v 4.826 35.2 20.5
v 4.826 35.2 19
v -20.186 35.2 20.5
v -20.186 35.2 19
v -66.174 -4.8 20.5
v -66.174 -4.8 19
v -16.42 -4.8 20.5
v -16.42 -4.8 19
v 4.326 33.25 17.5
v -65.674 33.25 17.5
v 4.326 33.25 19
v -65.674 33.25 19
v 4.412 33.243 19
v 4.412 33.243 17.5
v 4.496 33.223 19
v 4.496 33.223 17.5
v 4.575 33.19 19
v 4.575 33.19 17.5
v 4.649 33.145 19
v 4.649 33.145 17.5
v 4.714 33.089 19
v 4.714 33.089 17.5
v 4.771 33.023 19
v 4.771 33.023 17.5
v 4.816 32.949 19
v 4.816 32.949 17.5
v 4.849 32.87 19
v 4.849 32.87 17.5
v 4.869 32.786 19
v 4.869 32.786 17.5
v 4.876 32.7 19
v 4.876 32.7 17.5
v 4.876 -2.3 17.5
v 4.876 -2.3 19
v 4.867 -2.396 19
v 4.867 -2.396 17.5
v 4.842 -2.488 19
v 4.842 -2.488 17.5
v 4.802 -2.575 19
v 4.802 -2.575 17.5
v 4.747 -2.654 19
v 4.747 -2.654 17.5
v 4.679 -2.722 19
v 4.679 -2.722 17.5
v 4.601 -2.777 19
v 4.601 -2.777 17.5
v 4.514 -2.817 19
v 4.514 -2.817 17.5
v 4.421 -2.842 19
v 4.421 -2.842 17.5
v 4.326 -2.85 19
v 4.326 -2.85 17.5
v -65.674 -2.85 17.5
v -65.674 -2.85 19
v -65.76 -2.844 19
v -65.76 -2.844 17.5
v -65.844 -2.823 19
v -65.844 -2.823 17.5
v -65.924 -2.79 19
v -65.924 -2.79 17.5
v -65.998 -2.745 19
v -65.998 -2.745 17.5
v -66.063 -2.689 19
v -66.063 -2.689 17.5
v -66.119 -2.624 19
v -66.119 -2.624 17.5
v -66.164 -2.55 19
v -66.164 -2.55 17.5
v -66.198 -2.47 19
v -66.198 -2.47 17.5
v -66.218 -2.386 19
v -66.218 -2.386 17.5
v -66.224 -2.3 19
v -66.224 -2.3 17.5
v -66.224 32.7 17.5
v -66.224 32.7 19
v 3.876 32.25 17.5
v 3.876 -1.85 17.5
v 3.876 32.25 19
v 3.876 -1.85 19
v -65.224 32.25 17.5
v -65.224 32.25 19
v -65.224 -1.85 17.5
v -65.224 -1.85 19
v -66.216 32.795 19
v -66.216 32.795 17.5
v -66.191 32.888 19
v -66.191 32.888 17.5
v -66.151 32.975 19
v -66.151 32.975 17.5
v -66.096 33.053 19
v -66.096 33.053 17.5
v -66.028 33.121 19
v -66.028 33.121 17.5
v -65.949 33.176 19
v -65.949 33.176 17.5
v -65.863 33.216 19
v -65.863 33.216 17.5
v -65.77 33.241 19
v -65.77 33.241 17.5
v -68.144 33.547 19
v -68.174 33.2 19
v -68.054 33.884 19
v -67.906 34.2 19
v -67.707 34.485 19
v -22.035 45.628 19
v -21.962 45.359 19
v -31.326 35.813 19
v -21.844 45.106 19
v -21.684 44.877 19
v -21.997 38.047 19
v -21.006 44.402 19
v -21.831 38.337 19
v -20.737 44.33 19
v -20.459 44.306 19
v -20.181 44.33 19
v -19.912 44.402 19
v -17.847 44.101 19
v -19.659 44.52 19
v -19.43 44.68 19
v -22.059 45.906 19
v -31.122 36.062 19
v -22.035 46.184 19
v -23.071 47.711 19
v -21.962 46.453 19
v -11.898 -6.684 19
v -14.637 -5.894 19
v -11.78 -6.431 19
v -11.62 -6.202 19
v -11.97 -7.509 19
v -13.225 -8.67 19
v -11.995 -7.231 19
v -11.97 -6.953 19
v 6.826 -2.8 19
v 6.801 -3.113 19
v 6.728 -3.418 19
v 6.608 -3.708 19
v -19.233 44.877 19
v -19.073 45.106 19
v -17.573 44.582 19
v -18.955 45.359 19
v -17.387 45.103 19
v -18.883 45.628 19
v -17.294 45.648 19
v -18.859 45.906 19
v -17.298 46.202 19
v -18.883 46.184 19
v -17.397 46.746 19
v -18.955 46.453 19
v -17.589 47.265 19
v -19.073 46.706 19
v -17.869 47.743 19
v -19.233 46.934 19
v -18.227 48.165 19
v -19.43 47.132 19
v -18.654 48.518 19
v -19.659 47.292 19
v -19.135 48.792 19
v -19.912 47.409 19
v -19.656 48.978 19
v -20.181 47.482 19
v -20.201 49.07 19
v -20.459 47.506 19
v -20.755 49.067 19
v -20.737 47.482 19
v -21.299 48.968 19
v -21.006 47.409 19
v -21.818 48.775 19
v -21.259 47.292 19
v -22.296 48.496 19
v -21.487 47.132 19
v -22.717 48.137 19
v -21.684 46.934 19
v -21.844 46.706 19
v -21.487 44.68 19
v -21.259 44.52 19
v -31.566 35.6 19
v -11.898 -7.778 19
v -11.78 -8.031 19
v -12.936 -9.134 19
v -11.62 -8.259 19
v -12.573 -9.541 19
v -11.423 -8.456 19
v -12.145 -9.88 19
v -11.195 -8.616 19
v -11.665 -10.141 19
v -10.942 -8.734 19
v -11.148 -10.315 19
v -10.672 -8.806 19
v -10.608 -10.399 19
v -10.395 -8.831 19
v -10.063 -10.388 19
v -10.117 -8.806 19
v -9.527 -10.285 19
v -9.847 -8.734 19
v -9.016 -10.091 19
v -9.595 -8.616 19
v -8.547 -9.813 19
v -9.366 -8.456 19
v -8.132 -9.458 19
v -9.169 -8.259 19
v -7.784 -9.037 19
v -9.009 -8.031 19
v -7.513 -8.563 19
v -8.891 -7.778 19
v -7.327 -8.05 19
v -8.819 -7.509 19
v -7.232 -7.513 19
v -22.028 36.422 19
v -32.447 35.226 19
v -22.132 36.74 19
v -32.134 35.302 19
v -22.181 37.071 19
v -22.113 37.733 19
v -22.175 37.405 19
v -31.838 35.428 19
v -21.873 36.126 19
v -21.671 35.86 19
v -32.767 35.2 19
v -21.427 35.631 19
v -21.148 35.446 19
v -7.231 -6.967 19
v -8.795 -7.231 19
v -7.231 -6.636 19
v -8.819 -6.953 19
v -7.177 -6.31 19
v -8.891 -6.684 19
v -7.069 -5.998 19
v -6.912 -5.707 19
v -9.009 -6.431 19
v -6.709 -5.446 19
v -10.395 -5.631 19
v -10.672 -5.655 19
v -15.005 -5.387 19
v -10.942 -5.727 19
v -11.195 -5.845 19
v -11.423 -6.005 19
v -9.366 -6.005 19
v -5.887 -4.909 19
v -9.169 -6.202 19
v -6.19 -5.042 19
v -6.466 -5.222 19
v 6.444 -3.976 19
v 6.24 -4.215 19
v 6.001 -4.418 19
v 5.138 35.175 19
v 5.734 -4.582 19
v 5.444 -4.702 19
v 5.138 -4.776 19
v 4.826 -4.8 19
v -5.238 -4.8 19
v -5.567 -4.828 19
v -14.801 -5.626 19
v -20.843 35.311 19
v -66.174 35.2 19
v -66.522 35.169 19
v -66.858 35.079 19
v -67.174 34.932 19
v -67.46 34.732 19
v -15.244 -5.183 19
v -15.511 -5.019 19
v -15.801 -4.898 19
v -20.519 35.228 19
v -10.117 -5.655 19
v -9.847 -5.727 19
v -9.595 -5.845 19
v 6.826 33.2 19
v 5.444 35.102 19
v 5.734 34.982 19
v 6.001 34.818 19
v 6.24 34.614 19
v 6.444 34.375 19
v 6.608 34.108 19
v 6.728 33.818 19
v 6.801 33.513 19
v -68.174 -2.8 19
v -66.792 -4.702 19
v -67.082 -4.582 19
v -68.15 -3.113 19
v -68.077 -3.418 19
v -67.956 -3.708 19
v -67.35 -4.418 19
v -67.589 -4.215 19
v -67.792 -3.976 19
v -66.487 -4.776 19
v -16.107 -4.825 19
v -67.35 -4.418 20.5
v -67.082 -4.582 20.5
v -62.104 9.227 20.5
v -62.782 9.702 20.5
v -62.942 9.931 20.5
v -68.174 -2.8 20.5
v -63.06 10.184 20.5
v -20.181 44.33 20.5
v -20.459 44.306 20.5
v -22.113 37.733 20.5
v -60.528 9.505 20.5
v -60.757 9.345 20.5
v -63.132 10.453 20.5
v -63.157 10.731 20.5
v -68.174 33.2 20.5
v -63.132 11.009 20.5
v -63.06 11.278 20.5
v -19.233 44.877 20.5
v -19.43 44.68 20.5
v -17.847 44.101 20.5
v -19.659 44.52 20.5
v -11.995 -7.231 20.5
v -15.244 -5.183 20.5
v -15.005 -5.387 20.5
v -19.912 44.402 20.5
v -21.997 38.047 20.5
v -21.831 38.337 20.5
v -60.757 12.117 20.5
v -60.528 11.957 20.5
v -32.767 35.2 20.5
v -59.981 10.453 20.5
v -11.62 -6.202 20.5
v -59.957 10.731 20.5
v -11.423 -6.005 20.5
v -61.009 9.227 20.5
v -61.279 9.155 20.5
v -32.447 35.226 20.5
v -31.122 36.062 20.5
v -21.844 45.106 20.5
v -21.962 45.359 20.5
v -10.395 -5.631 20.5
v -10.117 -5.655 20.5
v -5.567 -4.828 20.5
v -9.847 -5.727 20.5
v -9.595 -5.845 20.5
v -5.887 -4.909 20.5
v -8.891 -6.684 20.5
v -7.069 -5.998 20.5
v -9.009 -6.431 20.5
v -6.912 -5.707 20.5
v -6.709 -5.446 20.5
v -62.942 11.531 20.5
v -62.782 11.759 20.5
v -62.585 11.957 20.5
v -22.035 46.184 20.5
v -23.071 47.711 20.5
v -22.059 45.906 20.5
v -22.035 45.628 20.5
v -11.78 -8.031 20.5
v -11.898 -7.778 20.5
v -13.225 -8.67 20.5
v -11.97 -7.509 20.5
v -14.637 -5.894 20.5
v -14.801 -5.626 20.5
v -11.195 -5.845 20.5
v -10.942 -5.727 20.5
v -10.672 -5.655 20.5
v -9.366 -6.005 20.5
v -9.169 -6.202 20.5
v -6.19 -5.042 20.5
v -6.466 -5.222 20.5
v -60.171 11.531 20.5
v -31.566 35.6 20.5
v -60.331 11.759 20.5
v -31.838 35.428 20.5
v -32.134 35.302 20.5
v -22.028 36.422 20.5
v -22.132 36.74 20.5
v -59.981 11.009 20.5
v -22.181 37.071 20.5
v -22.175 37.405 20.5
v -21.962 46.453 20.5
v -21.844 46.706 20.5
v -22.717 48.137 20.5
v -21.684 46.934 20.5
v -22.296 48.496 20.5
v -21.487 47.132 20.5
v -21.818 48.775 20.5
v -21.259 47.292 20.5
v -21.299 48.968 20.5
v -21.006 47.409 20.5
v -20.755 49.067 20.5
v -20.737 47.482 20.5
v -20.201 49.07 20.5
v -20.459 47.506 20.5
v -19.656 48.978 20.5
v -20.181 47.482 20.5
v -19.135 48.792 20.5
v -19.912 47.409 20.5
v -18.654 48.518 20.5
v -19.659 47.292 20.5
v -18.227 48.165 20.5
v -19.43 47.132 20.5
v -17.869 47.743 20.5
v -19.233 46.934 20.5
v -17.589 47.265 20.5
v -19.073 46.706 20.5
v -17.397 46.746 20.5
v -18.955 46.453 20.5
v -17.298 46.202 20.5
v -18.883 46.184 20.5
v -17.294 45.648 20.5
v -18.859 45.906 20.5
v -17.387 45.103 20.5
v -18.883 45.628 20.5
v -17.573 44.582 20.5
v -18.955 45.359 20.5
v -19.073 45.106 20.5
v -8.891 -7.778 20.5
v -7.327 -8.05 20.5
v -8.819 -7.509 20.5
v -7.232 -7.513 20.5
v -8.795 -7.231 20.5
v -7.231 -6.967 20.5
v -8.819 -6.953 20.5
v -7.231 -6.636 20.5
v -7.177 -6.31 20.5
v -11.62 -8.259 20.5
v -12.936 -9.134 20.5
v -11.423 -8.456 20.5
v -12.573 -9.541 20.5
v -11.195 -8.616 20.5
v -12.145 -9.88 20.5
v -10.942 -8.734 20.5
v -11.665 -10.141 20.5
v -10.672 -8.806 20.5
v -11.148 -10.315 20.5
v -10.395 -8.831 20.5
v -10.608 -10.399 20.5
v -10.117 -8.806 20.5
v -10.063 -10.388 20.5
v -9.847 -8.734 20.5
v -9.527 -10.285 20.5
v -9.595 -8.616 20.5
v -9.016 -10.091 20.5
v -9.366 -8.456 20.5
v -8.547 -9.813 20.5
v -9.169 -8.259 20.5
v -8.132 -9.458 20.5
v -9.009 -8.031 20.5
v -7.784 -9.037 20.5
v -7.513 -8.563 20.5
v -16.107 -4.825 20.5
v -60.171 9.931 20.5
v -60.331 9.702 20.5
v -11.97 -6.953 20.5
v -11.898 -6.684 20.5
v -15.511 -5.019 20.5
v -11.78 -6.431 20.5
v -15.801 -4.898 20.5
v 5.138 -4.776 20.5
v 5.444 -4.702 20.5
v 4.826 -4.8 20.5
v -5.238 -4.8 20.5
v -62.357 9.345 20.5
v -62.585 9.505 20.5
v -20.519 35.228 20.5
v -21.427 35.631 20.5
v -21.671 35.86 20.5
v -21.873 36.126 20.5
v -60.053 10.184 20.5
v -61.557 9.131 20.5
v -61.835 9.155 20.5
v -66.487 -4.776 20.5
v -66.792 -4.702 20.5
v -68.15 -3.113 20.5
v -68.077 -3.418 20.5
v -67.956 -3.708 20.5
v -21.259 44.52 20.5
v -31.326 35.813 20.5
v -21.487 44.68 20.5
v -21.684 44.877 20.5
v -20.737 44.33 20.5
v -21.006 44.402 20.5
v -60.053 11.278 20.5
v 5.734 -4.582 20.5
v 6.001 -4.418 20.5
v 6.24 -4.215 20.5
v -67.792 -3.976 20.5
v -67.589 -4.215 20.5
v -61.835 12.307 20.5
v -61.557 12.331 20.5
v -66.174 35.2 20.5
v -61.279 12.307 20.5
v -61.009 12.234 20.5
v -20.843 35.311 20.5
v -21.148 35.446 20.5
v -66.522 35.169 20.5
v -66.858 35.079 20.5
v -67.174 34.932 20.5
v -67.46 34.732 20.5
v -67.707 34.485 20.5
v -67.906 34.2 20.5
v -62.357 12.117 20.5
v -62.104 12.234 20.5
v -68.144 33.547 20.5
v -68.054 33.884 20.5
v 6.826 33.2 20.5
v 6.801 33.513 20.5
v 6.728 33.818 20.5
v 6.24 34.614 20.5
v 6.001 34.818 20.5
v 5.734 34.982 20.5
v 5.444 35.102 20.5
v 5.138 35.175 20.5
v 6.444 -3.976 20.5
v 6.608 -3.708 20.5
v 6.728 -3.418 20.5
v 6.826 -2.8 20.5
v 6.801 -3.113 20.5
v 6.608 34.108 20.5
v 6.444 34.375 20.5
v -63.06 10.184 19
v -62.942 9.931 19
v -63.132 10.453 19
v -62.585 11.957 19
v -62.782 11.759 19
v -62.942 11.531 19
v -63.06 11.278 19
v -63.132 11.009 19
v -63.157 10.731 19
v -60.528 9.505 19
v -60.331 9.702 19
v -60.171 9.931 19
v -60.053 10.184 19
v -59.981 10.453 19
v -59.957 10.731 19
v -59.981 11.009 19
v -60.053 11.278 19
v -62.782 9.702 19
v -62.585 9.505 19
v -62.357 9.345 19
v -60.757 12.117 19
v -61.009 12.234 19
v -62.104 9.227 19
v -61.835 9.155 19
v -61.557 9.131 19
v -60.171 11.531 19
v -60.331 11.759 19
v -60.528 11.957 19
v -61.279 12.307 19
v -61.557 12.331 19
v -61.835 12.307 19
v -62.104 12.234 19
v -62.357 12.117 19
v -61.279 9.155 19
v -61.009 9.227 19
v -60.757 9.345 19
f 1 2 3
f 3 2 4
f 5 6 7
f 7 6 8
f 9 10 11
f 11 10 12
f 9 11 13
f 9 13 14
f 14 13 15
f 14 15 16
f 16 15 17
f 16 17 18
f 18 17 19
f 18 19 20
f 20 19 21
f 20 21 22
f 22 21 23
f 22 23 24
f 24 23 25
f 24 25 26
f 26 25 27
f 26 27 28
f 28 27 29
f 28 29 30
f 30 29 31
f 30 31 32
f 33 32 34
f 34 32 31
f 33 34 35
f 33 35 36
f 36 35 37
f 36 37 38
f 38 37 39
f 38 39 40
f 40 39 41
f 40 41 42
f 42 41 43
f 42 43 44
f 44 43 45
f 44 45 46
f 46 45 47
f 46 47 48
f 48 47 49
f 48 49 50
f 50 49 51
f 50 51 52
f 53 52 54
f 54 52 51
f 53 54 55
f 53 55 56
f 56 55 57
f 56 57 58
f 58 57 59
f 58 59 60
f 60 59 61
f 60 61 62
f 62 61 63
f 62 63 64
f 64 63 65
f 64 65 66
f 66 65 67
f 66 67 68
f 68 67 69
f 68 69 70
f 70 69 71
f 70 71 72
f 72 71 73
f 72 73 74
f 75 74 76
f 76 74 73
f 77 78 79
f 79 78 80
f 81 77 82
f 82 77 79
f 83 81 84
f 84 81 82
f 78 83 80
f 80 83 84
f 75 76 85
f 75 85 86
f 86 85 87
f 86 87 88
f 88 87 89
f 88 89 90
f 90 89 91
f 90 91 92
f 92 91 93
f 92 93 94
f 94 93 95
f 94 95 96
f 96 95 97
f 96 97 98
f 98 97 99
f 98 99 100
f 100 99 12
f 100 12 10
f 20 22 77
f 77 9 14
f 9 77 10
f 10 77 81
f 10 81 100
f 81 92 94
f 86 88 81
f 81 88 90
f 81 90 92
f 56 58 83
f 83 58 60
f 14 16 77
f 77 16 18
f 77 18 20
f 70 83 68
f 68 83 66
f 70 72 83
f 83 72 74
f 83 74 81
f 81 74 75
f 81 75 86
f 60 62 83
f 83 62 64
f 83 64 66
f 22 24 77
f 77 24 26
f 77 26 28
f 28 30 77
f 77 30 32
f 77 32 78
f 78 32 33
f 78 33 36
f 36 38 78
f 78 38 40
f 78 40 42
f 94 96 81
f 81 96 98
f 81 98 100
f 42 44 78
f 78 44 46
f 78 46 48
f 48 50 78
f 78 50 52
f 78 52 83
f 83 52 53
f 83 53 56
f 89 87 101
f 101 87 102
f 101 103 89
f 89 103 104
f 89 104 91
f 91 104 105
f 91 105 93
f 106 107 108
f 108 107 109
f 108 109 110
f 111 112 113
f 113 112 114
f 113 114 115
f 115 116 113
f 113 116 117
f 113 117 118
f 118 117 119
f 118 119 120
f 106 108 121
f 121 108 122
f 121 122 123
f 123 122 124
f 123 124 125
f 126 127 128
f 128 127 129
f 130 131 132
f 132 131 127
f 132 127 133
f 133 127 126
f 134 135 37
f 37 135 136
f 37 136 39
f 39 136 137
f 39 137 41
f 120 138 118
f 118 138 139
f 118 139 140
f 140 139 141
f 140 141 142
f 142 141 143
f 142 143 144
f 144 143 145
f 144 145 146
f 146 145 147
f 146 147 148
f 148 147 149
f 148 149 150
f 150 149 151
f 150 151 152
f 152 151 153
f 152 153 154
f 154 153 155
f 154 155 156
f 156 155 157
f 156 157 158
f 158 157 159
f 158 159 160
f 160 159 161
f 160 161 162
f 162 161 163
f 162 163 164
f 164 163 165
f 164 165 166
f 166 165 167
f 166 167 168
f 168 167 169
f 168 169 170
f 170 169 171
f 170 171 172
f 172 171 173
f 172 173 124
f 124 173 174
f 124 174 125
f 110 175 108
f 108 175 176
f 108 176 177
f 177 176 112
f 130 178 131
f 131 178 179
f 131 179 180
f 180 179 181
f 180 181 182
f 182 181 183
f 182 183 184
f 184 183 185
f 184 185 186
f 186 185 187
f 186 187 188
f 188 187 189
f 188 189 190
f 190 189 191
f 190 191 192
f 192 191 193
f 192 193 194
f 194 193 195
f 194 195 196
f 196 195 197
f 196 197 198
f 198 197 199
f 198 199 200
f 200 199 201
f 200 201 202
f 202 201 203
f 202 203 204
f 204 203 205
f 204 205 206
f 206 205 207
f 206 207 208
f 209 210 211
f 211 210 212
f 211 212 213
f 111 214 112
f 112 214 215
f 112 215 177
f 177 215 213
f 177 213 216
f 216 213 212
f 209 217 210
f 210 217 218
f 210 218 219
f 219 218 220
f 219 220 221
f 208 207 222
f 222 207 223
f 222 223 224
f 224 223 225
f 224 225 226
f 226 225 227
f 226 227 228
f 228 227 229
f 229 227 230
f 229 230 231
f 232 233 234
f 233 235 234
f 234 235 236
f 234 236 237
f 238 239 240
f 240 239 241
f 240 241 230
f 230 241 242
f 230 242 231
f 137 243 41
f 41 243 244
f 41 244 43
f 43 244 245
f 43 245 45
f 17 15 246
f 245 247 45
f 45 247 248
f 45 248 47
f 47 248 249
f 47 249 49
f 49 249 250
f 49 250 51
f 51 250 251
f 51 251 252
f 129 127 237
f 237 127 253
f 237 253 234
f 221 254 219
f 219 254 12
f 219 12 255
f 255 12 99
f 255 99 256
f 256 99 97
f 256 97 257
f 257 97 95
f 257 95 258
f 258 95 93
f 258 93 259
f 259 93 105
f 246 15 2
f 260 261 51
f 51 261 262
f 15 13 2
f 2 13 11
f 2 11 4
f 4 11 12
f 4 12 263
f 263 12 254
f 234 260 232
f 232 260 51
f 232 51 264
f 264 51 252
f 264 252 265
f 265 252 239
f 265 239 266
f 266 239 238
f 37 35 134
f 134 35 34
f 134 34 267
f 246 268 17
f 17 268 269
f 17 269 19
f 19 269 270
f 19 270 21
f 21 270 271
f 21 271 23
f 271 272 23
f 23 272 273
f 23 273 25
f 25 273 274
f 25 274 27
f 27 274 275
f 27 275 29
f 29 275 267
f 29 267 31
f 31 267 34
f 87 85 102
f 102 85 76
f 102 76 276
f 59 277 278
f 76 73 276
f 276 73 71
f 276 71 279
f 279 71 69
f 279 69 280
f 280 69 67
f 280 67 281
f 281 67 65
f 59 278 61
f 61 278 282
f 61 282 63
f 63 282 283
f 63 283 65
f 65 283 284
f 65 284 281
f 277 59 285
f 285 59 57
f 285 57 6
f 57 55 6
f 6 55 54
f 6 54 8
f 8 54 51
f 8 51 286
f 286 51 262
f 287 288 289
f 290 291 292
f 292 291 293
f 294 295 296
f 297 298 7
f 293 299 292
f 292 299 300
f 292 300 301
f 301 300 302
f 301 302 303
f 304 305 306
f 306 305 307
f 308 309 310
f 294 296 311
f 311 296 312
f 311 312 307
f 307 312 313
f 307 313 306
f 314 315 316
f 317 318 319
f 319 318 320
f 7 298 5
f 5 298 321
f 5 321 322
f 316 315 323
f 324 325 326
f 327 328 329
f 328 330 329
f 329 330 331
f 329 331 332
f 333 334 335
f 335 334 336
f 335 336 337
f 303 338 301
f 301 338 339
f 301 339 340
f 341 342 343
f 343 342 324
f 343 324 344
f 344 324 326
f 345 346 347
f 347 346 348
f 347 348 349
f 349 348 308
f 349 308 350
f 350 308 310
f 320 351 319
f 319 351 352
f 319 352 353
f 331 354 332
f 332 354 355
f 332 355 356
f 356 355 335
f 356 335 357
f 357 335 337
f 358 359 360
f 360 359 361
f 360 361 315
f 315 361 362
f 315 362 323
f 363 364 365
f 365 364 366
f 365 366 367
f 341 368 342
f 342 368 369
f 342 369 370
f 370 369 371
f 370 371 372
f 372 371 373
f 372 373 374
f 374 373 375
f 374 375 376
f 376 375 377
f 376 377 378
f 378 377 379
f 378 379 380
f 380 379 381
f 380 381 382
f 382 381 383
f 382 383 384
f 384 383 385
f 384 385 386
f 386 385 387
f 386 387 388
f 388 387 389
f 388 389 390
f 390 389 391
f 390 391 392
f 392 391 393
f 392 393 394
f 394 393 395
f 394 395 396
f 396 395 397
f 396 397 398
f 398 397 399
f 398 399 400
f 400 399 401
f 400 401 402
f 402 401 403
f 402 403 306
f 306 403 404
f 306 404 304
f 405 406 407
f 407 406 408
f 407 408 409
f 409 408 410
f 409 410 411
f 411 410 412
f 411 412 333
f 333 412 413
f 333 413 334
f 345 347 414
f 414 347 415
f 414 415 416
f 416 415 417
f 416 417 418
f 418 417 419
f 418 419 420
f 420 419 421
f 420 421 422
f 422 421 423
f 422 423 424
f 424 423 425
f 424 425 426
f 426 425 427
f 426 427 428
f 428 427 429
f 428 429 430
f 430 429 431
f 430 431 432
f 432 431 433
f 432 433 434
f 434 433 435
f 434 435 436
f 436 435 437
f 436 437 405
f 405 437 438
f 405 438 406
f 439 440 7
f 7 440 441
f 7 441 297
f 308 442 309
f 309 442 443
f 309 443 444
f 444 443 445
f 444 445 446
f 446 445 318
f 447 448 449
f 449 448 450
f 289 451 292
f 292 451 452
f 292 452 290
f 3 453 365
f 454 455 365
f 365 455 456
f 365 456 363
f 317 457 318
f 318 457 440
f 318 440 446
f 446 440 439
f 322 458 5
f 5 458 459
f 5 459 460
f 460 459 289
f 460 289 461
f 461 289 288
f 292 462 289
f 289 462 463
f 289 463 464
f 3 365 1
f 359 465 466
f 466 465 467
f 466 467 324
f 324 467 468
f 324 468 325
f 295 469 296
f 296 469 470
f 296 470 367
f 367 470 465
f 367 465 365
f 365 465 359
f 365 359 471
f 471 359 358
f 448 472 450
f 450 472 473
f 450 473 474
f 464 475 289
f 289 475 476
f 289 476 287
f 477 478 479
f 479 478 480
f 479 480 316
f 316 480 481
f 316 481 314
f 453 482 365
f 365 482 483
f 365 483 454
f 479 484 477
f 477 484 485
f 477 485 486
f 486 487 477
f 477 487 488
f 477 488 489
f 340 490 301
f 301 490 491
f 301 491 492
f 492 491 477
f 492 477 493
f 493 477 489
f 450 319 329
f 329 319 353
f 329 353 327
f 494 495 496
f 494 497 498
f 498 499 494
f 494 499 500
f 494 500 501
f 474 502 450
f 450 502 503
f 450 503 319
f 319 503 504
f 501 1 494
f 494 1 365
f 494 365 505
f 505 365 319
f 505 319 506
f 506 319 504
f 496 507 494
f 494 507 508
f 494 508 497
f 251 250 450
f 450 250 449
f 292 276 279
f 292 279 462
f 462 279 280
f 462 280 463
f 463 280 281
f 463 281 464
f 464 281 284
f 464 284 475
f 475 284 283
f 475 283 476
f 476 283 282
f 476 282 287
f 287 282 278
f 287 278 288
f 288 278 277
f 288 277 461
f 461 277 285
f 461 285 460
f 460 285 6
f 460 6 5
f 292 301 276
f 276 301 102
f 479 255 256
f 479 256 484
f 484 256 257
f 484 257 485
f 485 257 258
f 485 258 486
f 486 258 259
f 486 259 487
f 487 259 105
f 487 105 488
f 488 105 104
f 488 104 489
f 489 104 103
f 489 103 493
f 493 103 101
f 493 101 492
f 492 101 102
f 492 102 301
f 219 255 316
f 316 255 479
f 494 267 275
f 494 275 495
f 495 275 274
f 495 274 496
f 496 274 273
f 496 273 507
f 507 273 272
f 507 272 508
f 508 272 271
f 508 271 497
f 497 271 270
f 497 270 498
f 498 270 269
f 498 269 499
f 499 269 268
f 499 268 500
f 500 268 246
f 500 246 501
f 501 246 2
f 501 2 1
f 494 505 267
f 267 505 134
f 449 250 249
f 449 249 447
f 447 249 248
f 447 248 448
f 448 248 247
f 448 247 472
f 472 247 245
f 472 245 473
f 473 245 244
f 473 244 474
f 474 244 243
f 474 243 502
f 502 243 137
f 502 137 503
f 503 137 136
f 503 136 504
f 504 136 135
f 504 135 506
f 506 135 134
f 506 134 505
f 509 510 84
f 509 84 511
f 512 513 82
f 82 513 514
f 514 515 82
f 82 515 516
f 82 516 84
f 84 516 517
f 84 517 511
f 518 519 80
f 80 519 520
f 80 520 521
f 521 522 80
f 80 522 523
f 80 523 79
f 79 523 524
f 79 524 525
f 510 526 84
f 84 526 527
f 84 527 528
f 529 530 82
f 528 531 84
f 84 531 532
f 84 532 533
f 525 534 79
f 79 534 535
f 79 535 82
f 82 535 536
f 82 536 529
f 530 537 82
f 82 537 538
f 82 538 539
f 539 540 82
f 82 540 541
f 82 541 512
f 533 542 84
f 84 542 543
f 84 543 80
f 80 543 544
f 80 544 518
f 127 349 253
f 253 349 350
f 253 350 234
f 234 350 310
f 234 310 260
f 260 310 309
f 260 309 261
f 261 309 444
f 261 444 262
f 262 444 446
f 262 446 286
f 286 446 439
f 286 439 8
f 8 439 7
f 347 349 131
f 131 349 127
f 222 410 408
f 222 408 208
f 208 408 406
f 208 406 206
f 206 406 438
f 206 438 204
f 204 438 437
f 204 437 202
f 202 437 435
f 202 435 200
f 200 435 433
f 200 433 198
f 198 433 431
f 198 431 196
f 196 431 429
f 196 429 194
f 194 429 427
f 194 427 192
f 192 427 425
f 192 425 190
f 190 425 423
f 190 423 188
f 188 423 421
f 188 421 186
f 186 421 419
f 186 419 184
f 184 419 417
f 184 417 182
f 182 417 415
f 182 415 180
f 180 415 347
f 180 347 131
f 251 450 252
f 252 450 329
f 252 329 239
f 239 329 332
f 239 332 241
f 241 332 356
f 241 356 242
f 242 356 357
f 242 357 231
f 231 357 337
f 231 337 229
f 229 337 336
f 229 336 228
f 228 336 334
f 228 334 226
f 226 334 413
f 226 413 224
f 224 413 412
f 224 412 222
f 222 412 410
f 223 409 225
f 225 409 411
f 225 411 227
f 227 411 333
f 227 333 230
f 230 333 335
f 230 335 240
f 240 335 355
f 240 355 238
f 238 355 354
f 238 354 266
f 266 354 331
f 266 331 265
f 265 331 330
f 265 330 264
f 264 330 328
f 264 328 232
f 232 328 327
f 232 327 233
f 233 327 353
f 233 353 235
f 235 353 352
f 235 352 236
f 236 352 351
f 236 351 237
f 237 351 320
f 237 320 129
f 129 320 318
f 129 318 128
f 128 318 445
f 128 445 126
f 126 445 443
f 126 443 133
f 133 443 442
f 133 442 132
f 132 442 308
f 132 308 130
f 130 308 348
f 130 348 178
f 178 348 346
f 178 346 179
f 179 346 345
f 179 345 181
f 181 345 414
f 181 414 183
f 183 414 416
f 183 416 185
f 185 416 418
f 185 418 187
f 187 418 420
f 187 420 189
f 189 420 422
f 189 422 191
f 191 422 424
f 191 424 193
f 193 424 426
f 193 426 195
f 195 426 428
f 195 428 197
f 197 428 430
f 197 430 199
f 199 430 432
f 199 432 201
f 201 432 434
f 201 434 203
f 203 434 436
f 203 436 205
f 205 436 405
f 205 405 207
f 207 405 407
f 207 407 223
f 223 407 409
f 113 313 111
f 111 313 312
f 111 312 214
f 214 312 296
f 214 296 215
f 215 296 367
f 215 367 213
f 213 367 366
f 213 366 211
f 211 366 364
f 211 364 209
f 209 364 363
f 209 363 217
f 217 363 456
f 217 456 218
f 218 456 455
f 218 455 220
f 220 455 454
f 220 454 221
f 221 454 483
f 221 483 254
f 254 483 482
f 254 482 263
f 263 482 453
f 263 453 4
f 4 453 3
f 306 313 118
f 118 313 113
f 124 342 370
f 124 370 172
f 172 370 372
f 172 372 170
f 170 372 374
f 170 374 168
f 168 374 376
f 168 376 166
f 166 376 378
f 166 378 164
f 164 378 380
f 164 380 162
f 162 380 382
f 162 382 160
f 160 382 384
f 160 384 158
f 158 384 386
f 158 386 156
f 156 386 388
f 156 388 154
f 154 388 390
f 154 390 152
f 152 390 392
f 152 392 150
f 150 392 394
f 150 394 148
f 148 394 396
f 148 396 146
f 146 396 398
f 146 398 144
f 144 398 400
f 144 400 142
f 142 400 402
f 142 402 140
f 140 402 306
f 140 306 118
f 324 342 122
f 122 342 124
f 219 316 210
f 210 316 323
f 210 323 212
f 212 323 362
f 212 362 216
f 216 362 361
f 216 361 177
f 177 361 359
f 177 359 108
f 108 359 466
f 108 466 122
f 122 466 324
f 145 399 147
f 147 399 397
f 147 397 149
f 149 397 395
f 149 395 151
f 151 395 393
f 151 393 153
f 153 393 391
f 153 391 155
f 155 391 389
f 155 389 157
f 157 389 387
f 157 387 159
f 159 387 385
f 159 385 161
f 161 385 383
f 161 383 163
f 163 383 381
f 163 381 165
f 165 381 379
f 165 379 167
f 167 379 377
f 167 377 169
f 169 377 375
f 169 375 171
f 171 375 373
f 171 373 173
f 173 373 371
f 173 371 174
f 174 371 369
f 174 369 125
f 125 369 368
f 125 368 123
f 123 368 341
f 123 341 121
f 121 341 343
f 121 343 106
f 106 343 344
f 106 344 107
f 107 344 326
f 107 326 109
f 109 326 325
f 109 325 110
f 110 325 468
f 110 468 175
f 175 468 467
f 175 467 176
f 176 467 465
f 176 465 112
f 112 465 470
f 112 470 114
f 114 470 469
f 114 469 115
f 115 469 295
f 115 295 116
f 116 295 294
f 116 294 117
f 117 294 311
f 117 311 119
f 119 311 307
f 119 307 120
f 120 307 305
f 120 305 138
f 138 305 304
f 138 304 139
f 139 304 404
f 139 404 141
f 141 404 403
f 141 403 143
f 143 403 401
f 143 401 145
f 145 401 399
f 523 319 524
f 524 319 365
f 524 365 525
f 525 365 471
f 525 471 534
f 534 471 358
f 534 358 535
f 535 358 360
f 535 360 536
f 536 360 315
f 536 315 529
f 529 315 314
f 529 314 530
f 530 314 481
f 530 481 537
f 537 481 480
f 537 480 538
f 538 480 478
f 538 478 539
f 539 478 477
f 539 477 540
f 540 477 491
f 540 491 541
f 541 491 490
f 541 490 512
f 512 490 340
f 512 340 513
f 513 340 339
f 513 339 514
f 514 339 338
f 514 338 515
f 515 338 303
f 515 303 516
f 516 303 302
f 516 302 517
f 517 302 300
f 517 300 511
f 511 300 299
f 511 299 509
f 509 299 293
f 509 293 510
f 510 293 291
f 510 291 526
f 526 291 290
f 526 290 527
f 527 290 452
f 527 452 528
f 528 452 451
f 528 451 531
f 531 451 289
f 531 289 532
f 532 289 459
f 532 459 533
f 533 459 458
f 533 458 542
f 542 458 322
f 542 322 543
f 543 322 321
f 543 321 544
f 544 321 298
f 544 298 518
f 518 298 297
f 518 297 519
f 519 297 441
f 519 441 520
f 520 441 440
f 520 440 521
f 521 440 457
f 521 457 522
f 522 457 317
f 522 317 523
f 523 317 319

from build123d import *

# Parameters (mm, degrees)
SKETCH1_W           = 69.1
SKETCH1_H           = 34.1
BOSS_EXTRUDE1_DEPTH = 1.5
BOSS_EXTRUDE2_DEPTH = 1.5
SKETCH3_R           = 1.6
BOSS_EXTRUDE3_DEPTH = 1.5
SKETCH3_2_R         = 1.6
CUT_EXTRUDE1_DEPTH  = 85.057646739


with BuildPart() as part:
    # Sketch1 → Boss-Extrude1 (new body)
    with BuildSketch(Plane.XY.offset(19)):
        with BuildLine():
            Line((4.325559412, 33.249665151), (-65.674440588, 33.249665151))
            ThreePointArc((-65.674440588, 33.249665151), (-66.063349318, 33.088573881), (-66.224440588, 32.699665151))
            Line((-66.224440588, 32.699665151), (-66.224440588, -2.300334849))
            ThreePointArc((-66.224440588, -2.300334849), (-66.063349318, -2.689243578), (-65.674440588, -2.850334849))
            Line((-65.674440588, -2.850334849), (4.325559412, -2.850334849))
            ThreePointArc((4.325559412, -2.850334849), (4.714468141, -2.689243578), (4.875559412, -2.300334849))
            Line((4.875559412, -2.300334849), (4.875559412, 32.699665151))
            ThreePointArc((4.875559412, 32.699665151), (4.714468141, 33.088573881), (4.325559412, 33.249665151))
        make_face()
        with Locations((-30.674440588, 15.199665151)):
            Rectangle(SKETCH1_W, SKETCH1_H, mode=Mode.SUBTRACT)
    extrude(amount=-BOSS_EXTRUDE1_DEPTH)

    # Sketch2 → Boss-Extrude2 (add)
    with BuildSketch(Plane.XY.offset(19)):
        with BuildLine():
            Line((6.825559412, -2.800334849), (6.825559412, 33.199665151))
            ThreePointArc((6.825559412, 33.199665151), (6.239772974, 34.613878714), (4.825559412, 35.199665151))
            Line((4.825559412, 35.199665151), (-66.174440588, 35.199665151))
            ThreePointArc((-66.174440588, 35.199665151), (-67.588654151, 34.613878714), (-68.174440588, 33.199665151))
            Line((-68.174440588, 33.199665151), (-68.174440588, -2.800334849))
            ThreePointArc((-68.174440588, -2.800334849), (-67.588654151, -4.214548411), (-66.174440588, -4.800334849))
            Line((-66.174440588, -4.800334849), (4.825559412, -4.800334849))
            ThreePointArc((4.825559412, -4.800334849), (6.239772974, -4.214548411), (6.825559412, -2.800334849))
        make_face()
    extrude(amount=BOSS_EXTRUDE2_DEPTH)

    # Sketch3 → Boss-Extrude3 (add)
    with BuildSketch(Plane.XY.offset(20.5)):
        with Locations((-61.556671003, 10.73089265)):
            Circle(SKETCH3_R)
        with BuildLine():
            Line((-14.637085978, -5.893524128), (-13.224518296, -8.670350201))
            ThreePointArc((-13.224518296, -8.670350201), (-9.526572542, -10.284819436), (-7.230629421, -6.966693625))
            ThreePointArc((-7.230629421, -6.966693625), (-7.001208277, -5.857177596), (-6.205806077, -5.050334849))
            ThreePointArc((-6.205806077, -5.050334849), (-5.737560241, -4.863843176), (-5.237560241, -4.800334849))
            Line((-5.237560241, -4.800334849), (-16.419694829, -4.800334849))
            ThreePointArc((-16.419694829, -4.800334849), (-15.919694829, -4.863843176), (-15.451448992, -5.050334849))
            ThreePointArc((-15.451448992, -5.050334849), (-14.981104401, -5.410925772), (-14.637085978, -5.893524128))
        make_face()
        with Locations((-10.394626745, -7.230788182)):
            Circle(SKETCH3_R, mode=Mode.SUBTRACT)
        with BuildLine():
            Line((-23.070638788, 47.711150724), (-31.122037847, 36.06249216))
            ThreePointArc((-31.122037847, 36.06249216), (-31.425094294, 35.716922893), (-31.799038979, 35.449665151))
            ThreePointArc((-31.799038979, 35.449665151), (-32.267284816, 35.263173478), (-32.767284816, 35.199665151))
            Line((-32.767284816, 35.199665151), (-20.185587119, 35.199665151))
            ThreePointArc((-20.185587119, 35.199665151), (-20.685587119, 35.263173478), (-21.153832956, 35.449665151))
            ThreePointArc((-21.153832956, 35.449665151), (-22.132771787, 36.743077954), (-21.830834088, 38.336838142))
            Line((-21.830834088, 38.336838142), (-17.846979662, 44.100626478))
            ThreePointArc((-17.846979662, 44.100626478), (-18.653547102, 48.517718164), (-23.070638788, 47.711150724))
        make_face()
        with Locations((-20.458809225, 45.905888601)):
            Circle(SKETCH3_R, mode=Mode.SUBTRACT)
    extrude(amount=-BOSS_EXTRUDE3_DEPTH)

    # Sketch3<2> → Cut-Extrude1 (cut, through all)
    with BuildSketch(Plane.XY.offset(20.5)):
        with Locations((-61.556671003, 10.73089265)):
            Circle(SKETCH3_2_R)
    extrude(amount=-CUT_EXTRUDE1_DEPTH, mode=Mode.SUBTRACT)


solid = part.part
